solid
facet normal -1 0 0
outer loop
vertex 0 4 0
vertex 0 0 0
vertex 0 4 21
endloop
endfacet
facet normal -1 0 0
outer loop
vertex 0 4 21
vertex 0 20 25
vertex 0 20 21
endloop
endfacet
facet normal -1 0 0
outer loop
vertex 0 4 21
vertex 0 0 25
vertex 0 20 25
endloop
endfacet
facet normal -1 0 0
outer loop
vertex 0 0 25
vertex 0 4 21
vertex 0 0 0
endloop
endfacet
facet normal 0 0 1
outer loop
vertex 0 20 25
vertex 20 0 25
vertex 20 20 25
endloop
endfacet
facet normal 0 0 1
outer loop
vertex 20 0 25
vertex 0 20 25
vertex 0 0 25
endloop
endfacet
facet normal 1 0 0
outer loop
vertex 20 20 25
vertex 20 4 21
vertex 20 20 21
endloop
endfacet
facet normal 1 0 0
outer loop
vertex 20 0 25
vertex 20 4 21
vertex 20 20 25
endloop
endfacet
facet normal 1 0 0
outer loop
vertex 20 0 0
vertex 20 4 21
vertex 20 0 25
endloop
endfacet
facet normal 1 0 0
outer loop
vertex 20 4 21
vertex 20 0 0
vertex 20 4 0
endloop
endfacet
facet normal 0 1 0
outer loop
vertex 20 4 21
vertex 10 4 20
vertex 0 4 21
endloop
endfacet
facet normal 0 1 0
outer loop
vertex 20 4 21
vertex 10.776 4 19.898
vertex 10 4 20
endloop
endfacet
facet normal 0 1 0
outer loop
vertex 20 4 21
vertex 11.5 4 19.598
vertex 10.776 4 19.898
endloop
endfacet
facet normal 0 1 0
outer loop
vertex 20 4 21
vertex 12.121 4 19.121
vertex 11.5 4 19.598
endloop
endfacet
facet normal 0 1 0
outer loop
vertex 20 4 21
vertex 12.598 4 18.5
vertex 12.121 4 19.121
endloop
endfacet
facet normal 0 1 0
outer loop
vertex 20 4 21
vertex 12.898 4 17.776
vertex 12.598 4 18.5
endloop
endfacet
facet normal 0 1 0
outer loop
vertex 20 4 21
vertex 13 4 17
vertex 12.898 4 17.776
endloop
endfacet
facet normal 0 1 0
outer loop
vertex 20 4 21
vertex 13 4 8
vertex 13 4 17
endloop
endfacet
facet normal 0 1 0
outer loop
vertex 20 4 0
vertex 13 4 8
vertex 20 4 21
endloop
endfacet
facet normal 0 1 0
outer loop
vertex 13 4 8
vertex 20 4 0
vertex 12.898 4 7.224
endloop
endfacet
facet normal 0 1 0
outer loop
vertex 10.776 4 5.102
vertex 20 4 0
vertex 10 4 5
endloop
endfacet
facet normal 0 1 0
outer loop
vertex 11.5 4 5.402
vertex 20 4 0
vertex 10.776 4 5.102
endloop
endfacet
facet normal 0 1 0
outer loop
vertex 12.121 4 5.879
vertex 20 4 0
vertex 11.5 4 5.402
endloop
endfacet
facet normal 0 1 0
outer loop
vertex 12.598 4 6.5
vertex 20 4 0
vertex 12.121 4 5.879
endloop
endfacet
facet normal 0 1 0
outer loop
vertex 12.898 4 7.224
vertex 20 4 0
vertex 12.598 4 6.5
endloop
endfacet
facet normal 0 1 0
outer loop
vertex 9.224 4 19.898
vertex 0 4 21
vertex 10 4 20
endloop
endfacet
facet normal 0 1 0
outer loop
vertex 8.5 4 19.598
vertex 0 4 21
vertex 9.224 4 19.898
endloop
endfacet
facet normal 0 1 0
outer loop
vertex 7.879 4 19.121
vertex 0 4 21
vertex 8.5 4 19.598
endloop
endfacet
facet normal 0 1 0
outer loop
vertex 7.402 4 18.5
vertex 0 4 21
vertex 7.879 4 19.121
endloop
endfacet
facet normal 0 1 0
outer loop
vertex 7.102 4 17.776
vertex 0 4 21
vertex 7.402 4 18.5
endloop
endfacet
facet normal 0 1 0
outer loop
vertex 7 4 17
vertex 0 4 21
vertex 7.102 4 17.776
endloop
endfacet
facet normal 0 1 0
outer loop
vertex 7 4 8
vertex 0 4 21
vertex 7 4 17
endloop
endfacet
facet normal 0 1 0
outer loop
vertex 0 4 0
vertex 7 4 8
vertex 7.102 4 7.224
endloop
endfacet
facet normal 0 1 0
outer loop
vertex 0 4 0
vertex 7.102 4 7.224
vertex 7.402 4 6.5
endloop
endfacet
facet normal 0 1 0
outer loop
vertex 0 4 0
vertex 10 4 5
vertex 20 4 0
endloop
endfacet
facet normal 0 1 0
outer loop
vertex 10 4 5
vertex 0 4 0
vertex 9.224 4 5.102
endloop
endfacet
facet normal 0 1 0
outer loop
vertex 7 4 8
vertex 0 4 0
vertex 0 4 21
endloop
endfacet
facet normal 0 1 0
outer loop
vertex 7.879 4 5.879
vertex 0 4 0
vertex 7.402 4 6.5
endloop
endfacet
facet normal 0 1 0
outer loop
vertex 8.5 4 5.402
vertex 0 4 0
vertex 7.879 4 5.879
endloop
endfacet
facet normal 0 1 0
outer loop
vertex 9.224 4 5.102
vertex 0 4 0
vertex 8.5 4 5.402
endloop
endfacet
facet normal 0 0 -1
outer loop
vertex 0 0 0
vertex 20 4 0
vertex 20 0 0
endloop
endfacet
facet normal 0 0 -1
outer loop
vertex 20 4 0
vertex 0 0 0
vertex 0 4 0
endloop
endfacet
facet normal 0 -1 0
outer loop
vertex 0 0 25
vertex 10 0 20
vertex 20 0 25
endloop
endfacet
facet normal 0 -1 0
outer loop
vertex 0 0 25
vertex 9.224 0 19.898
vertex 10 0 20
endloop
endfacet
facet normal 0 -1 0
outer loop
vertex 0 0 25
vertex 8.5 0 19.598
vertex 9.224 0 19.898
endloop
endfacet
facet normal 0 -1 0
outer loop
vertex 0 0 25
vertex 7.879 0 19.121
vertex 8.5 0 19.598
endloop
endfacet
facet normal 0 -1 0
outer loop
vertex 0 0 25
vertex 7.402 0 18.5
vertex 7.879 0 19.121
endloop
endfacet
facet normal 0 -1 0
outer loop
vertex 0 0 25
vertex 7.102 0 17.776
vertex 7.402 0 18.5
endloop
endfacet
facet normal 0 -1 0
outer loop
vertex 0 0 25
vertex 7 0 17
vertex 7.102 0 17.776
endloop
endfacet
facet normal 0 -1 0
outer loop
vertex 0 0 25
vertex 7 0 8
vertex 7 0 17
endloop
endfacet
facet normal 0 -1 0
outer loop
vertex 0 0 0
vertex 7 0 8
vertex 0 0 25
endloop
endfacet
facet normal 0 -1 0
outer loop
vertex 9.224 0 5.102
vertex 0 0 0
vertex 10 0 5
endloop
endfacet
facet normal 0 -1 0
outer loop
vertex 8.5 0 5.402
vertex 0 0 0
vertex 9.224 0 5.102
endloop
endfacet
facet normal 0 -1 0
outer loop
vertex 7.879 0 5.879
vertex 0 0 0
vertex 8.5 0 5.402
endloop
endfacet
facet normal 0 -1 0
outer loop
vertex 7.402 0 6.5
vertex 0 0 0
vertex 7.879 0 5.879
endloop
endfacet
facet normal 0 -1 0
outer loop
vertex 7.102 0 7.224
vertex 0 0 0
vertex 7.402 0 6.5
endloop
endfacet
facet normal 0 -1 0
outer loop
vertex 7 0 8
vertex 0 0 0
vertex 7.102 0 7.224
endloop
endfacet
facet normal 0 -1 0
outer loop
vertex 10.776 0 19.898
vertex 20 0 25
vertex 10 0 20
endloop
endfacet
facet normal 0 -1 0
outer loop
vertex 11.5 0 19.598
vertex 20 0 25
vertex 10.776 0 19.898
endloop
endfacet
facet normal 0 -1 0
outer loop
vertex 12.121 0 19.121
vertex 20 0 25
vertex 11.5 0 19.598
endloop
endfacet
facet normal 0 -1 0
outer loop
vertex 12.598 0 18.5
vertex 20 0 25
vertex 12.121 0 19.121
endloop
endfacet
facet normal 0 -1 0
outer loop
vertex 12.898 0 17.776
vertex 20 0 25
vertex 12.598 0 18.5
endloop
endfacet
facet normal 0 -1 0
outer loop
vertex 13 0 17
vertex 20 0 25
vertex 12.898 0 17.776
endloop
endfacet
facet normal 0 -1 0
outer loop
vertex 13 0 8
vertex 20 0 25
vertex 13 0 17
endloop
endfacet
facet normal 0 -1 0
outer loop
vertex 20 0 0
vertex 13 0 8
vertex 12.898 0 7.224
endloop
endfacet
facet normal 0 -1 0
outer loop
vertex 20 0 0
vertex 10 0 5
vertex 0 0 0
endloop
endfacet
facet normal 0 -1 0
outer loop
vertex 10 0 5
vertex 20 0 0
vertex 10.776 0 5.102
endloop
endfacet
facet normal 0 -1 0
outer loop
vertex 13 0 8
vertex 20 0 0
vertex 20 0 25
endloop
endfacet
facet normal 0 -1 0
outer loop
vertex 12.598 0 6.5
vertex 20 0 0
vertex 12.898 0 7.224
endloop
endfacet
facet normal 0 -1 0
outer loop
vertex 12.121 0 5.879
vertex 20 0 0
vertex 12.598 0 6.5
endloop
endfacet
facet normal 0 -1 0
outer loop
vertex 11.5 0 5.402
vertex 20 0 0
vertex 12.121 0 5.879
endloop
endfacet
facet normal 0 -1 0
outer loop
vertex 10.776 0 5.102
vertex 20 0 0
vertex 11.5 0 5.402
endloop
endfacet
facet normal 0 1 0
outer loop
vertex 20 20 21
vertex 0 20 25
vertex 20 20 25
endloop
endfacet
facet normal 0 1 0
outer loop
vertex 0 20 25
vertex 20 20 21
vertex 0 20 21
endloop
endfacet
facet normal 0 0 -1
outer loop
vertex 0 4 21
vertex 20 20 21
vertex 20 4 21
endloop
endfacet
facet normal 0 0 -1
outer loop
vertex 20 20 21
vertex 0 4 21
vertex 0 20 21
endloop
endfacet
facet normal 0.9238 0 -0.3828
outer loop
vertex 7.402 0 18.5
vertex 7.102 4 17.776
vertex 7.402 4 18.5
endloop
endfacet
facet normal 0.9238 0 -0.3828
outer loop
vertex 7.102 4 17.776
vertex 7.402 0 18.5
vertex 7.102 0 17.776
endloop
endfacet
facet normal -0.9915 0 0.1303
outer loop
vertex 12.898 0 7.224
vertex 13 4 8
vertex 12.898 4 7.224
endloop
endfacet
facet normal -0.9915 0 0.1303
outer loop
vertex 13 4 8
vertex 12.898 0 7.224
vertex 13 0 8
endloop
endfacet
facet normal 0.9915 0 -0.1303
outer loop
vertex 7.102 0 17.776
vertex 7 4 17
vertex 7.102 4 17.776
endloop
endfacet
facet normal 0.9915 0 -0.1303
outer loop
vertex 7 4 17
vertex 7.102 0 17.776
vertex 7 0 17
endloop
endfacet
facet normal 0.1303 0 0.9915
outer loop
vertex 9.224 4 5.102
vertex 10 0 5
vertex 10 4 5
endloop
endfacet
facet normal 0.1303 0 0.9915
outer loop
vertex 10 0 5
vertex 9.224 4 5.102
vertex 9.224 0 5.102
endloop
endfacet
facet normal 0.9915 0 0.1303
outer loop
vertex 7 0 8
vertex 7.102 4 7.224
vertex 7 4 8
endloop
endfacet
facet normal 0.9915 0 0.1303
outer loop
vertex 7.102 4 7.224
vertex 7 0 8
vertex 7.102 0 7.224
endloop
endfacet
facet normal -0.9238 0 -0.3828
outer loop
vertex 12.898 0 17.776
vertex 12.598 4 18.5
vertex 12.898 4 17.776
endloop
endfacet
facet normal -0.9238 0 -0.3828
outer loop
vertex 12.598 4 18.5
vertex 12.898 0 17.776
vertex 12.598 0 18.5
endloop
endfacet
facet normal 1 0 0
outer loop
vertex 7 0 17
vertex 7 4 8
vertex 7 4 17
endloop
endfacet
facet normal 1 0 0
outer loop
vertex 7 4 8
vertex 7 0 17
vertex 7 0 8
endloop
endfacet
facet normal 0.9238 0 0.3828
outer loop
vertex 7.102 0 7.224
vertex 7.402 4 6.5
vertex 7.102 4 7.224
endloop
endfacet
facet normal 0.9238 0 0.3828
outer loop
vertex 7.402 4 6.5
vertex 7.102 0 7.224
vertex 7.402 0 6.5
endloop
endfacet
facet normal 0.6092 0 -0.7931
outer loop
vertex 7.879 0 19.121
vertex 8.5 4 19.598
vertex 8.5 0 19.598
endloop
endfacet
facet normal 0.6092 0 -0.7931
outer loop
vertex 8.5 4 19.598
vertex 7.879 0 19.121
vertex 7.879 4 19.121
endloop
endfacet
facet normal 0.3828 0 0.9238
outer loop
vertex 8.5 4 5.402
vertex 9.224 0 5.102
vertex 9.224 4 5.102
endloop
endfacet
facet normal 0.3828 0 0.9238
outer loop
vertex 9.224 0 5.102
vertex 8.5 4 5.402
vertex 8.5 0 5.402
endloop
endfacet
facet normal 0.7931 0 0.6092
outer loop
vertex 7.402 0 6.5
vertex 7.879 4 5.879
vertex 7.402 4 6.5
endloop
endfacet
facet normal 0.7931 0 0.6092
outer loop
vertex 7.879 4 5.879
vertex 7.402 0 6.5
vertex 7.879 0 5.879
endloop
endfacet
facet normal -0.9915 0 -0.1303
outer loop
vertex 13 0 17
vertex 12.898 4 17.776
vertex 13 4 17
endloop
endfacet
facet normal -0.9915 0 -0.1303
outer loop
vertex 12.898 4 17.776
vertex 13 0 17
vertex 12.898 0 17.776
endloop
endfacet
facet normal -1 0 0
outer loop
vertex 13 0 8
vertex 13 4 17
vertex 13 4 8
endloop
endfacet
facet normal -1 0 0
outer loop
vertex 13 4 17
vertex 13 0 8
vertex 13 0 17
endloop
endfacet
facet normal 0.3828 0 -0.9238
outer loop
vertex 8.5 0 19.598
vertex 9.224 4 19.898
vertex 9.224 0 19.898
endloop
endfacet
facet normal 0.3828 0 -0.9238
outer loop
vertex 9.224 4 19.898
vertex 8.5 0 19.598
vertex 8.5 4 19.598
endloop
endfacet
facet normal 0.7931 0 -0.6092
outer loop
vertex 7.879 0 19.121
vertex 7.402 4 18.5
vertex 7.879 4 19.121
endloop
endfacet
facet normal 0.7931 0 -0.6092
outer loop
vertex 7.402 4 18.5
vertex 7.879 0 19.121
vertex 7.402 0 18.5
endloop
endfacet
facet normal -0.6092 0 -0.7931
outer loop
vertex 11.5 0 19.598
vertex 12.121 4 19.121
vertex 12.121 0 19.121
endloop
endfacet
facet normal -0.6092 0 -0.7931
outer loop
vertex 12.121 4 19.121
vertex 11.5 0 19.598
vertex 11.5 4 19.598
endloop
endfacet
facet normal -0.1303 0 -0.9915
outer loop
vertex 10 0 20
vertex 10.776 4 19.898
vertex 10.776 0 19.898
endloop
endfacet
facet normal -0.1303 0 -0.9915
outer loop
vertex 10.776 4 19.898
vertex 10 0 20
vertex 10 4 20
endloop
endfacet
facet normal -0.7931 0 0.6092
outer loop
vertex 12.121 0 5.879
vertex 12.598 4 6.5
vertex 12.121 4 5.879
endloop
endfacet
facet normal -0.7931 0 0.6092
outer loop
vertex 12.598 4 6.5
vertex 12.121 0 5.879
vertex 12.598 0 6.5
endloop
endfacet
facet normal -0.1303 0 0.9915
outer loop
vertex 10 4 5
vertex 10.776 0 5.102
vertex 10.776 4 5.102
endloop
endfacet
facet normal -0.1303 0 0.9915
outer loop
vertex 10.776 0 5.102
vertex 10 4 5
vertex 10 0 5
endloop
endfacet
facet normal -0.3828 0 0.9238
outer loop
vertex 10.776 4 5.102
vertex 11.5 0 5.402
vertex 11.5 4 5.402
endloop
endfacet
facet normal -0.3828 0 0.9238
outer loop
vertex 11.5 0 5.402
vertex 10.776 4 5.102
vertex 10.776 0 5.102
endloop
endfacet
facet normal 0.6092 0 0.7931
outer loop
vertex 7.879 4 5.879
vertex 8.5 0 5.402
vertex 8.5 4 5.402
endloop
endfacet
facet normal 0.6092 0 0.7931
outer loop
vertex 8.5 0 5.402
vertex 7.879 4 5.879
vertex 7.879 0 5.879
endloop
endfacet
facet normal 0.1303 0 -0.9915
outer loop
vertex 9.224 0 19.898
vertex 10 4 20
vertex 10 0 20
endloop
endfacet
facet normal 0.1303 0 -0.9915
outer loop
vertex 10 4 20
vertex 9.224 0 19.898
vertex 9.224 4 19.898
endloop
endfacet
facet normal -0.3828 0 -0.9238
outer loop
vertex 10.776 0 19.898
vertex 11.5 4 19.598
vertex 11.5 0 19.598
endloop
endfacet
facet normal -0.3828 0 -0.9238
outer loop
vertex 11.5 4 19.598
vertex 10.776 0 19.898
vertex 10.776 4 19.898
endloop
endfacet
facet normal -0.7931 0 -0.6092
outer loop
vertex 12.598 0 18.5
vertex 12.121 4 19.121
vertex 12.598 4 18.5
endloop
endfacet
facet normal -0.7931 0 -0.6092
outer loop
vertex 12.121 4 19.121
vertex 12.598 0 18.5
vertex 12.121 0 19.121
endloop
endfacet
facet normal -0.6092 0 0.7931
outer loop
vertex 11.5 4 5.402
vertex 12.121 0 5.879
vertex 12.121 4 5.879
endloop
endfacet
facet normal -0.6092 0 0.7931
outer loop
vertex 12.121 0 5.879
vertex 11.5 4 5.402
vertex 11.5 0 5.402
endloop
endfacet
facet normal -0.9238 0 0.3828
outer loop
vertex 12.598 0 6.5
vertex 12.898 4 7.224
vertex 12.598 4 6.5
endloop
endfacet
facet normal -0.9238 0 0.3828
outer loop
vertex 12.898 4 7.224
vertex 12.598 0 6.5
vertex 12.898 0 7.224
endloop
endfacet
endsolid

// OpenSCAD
// Limit switch mount bracket (X, A, Y -- printed 3x, same design)
// See docs/decisions/0033-limit-switch-selection.md
//
// L-bracket: mounting leg slides in the extrusion's T-slot (M5 bolt +
// T-nut) for position adjustment along the rail; switch leg holds a
// KW12-3-style SPDT roller-lever microswitch via slotted M2 holes.
//
// PARAMETERS MARKED "VERIFY" ARE WORKING ESTIMATES -- confirm against the
// actual switch purchased before printing all 3.

// ---- Mounting leg (against extrusion) ----
mount_leg_width   = 20;
mount_leg_height  = 25;
bolt_slot_width   = 6;     // clears an M5 bolt head/washer, slides for adjustment
bolt_slot_length  = 15;

// ---- Switch leg (perpendicular, holds the microswitch) ----
switch_leg_depth  = 20;    // VERIFY: matches switch body length (~20mm)
switch_hole_dia   = 2.5;   // M2 clearance, slotted
switch_hole_slot  = 4;     // extra slot length for adjustment
switch_hole_spacing = 9.5; // VERIFY: working estimate, see ADR 0033

thickness = 4;

module bolt_slot() {
    translate([mount_leg_width/2, -1, mount_leg_height/2])
        rotate([-90, 0, 0])
            linear_extrude(height = thickness + 2)
                hull() {
                    translate([0,  (bolt_slot_length - bolt_slot_width)/2]) circle(d = bolt_slot_width, $fn = 24);
                    translate([0, -(bolt_slot_length - bolt_slot_width)/2]) circle(d = bolt_slot_width, $fn = 24);
                }
}

module switch_holes() {
    // holes go through the switch leg's top face (Z axis), on the
    // horizontal outward-projecting leg
    for (dx = [-switch_hole_spacing/2, switch_hole_spacing/2])
        translate([mount_leg_width/2 + dx, switch_leg_depth/2, -1])
            linear_extrude(height = thickness + 2)
                hull() {
                    translate([ switch_hole_slot/2, 0]) circle(d = switch_hole_dia, $fn = 20);
                    translate([-switch_hole_slot/2, 0]) circle(d = switch_hole_dia, $fn = 20);
                }
}

module bracket() {
    difference() {
        union() {
            // mounting leg: vertical, flat against the extrusion
            cube([mount_leg_width, thickness, mount_leg_height]);
            // switch leg: horizontal, projects outward from the top of the mounting leg
            translate([0, 0, mount_leg_height - thickness])
                cube([mount_leg_width, switch_leg_depth, thickness]);
        }
        bolt_slot();
        switch_holes();
    }
}

bracket();
